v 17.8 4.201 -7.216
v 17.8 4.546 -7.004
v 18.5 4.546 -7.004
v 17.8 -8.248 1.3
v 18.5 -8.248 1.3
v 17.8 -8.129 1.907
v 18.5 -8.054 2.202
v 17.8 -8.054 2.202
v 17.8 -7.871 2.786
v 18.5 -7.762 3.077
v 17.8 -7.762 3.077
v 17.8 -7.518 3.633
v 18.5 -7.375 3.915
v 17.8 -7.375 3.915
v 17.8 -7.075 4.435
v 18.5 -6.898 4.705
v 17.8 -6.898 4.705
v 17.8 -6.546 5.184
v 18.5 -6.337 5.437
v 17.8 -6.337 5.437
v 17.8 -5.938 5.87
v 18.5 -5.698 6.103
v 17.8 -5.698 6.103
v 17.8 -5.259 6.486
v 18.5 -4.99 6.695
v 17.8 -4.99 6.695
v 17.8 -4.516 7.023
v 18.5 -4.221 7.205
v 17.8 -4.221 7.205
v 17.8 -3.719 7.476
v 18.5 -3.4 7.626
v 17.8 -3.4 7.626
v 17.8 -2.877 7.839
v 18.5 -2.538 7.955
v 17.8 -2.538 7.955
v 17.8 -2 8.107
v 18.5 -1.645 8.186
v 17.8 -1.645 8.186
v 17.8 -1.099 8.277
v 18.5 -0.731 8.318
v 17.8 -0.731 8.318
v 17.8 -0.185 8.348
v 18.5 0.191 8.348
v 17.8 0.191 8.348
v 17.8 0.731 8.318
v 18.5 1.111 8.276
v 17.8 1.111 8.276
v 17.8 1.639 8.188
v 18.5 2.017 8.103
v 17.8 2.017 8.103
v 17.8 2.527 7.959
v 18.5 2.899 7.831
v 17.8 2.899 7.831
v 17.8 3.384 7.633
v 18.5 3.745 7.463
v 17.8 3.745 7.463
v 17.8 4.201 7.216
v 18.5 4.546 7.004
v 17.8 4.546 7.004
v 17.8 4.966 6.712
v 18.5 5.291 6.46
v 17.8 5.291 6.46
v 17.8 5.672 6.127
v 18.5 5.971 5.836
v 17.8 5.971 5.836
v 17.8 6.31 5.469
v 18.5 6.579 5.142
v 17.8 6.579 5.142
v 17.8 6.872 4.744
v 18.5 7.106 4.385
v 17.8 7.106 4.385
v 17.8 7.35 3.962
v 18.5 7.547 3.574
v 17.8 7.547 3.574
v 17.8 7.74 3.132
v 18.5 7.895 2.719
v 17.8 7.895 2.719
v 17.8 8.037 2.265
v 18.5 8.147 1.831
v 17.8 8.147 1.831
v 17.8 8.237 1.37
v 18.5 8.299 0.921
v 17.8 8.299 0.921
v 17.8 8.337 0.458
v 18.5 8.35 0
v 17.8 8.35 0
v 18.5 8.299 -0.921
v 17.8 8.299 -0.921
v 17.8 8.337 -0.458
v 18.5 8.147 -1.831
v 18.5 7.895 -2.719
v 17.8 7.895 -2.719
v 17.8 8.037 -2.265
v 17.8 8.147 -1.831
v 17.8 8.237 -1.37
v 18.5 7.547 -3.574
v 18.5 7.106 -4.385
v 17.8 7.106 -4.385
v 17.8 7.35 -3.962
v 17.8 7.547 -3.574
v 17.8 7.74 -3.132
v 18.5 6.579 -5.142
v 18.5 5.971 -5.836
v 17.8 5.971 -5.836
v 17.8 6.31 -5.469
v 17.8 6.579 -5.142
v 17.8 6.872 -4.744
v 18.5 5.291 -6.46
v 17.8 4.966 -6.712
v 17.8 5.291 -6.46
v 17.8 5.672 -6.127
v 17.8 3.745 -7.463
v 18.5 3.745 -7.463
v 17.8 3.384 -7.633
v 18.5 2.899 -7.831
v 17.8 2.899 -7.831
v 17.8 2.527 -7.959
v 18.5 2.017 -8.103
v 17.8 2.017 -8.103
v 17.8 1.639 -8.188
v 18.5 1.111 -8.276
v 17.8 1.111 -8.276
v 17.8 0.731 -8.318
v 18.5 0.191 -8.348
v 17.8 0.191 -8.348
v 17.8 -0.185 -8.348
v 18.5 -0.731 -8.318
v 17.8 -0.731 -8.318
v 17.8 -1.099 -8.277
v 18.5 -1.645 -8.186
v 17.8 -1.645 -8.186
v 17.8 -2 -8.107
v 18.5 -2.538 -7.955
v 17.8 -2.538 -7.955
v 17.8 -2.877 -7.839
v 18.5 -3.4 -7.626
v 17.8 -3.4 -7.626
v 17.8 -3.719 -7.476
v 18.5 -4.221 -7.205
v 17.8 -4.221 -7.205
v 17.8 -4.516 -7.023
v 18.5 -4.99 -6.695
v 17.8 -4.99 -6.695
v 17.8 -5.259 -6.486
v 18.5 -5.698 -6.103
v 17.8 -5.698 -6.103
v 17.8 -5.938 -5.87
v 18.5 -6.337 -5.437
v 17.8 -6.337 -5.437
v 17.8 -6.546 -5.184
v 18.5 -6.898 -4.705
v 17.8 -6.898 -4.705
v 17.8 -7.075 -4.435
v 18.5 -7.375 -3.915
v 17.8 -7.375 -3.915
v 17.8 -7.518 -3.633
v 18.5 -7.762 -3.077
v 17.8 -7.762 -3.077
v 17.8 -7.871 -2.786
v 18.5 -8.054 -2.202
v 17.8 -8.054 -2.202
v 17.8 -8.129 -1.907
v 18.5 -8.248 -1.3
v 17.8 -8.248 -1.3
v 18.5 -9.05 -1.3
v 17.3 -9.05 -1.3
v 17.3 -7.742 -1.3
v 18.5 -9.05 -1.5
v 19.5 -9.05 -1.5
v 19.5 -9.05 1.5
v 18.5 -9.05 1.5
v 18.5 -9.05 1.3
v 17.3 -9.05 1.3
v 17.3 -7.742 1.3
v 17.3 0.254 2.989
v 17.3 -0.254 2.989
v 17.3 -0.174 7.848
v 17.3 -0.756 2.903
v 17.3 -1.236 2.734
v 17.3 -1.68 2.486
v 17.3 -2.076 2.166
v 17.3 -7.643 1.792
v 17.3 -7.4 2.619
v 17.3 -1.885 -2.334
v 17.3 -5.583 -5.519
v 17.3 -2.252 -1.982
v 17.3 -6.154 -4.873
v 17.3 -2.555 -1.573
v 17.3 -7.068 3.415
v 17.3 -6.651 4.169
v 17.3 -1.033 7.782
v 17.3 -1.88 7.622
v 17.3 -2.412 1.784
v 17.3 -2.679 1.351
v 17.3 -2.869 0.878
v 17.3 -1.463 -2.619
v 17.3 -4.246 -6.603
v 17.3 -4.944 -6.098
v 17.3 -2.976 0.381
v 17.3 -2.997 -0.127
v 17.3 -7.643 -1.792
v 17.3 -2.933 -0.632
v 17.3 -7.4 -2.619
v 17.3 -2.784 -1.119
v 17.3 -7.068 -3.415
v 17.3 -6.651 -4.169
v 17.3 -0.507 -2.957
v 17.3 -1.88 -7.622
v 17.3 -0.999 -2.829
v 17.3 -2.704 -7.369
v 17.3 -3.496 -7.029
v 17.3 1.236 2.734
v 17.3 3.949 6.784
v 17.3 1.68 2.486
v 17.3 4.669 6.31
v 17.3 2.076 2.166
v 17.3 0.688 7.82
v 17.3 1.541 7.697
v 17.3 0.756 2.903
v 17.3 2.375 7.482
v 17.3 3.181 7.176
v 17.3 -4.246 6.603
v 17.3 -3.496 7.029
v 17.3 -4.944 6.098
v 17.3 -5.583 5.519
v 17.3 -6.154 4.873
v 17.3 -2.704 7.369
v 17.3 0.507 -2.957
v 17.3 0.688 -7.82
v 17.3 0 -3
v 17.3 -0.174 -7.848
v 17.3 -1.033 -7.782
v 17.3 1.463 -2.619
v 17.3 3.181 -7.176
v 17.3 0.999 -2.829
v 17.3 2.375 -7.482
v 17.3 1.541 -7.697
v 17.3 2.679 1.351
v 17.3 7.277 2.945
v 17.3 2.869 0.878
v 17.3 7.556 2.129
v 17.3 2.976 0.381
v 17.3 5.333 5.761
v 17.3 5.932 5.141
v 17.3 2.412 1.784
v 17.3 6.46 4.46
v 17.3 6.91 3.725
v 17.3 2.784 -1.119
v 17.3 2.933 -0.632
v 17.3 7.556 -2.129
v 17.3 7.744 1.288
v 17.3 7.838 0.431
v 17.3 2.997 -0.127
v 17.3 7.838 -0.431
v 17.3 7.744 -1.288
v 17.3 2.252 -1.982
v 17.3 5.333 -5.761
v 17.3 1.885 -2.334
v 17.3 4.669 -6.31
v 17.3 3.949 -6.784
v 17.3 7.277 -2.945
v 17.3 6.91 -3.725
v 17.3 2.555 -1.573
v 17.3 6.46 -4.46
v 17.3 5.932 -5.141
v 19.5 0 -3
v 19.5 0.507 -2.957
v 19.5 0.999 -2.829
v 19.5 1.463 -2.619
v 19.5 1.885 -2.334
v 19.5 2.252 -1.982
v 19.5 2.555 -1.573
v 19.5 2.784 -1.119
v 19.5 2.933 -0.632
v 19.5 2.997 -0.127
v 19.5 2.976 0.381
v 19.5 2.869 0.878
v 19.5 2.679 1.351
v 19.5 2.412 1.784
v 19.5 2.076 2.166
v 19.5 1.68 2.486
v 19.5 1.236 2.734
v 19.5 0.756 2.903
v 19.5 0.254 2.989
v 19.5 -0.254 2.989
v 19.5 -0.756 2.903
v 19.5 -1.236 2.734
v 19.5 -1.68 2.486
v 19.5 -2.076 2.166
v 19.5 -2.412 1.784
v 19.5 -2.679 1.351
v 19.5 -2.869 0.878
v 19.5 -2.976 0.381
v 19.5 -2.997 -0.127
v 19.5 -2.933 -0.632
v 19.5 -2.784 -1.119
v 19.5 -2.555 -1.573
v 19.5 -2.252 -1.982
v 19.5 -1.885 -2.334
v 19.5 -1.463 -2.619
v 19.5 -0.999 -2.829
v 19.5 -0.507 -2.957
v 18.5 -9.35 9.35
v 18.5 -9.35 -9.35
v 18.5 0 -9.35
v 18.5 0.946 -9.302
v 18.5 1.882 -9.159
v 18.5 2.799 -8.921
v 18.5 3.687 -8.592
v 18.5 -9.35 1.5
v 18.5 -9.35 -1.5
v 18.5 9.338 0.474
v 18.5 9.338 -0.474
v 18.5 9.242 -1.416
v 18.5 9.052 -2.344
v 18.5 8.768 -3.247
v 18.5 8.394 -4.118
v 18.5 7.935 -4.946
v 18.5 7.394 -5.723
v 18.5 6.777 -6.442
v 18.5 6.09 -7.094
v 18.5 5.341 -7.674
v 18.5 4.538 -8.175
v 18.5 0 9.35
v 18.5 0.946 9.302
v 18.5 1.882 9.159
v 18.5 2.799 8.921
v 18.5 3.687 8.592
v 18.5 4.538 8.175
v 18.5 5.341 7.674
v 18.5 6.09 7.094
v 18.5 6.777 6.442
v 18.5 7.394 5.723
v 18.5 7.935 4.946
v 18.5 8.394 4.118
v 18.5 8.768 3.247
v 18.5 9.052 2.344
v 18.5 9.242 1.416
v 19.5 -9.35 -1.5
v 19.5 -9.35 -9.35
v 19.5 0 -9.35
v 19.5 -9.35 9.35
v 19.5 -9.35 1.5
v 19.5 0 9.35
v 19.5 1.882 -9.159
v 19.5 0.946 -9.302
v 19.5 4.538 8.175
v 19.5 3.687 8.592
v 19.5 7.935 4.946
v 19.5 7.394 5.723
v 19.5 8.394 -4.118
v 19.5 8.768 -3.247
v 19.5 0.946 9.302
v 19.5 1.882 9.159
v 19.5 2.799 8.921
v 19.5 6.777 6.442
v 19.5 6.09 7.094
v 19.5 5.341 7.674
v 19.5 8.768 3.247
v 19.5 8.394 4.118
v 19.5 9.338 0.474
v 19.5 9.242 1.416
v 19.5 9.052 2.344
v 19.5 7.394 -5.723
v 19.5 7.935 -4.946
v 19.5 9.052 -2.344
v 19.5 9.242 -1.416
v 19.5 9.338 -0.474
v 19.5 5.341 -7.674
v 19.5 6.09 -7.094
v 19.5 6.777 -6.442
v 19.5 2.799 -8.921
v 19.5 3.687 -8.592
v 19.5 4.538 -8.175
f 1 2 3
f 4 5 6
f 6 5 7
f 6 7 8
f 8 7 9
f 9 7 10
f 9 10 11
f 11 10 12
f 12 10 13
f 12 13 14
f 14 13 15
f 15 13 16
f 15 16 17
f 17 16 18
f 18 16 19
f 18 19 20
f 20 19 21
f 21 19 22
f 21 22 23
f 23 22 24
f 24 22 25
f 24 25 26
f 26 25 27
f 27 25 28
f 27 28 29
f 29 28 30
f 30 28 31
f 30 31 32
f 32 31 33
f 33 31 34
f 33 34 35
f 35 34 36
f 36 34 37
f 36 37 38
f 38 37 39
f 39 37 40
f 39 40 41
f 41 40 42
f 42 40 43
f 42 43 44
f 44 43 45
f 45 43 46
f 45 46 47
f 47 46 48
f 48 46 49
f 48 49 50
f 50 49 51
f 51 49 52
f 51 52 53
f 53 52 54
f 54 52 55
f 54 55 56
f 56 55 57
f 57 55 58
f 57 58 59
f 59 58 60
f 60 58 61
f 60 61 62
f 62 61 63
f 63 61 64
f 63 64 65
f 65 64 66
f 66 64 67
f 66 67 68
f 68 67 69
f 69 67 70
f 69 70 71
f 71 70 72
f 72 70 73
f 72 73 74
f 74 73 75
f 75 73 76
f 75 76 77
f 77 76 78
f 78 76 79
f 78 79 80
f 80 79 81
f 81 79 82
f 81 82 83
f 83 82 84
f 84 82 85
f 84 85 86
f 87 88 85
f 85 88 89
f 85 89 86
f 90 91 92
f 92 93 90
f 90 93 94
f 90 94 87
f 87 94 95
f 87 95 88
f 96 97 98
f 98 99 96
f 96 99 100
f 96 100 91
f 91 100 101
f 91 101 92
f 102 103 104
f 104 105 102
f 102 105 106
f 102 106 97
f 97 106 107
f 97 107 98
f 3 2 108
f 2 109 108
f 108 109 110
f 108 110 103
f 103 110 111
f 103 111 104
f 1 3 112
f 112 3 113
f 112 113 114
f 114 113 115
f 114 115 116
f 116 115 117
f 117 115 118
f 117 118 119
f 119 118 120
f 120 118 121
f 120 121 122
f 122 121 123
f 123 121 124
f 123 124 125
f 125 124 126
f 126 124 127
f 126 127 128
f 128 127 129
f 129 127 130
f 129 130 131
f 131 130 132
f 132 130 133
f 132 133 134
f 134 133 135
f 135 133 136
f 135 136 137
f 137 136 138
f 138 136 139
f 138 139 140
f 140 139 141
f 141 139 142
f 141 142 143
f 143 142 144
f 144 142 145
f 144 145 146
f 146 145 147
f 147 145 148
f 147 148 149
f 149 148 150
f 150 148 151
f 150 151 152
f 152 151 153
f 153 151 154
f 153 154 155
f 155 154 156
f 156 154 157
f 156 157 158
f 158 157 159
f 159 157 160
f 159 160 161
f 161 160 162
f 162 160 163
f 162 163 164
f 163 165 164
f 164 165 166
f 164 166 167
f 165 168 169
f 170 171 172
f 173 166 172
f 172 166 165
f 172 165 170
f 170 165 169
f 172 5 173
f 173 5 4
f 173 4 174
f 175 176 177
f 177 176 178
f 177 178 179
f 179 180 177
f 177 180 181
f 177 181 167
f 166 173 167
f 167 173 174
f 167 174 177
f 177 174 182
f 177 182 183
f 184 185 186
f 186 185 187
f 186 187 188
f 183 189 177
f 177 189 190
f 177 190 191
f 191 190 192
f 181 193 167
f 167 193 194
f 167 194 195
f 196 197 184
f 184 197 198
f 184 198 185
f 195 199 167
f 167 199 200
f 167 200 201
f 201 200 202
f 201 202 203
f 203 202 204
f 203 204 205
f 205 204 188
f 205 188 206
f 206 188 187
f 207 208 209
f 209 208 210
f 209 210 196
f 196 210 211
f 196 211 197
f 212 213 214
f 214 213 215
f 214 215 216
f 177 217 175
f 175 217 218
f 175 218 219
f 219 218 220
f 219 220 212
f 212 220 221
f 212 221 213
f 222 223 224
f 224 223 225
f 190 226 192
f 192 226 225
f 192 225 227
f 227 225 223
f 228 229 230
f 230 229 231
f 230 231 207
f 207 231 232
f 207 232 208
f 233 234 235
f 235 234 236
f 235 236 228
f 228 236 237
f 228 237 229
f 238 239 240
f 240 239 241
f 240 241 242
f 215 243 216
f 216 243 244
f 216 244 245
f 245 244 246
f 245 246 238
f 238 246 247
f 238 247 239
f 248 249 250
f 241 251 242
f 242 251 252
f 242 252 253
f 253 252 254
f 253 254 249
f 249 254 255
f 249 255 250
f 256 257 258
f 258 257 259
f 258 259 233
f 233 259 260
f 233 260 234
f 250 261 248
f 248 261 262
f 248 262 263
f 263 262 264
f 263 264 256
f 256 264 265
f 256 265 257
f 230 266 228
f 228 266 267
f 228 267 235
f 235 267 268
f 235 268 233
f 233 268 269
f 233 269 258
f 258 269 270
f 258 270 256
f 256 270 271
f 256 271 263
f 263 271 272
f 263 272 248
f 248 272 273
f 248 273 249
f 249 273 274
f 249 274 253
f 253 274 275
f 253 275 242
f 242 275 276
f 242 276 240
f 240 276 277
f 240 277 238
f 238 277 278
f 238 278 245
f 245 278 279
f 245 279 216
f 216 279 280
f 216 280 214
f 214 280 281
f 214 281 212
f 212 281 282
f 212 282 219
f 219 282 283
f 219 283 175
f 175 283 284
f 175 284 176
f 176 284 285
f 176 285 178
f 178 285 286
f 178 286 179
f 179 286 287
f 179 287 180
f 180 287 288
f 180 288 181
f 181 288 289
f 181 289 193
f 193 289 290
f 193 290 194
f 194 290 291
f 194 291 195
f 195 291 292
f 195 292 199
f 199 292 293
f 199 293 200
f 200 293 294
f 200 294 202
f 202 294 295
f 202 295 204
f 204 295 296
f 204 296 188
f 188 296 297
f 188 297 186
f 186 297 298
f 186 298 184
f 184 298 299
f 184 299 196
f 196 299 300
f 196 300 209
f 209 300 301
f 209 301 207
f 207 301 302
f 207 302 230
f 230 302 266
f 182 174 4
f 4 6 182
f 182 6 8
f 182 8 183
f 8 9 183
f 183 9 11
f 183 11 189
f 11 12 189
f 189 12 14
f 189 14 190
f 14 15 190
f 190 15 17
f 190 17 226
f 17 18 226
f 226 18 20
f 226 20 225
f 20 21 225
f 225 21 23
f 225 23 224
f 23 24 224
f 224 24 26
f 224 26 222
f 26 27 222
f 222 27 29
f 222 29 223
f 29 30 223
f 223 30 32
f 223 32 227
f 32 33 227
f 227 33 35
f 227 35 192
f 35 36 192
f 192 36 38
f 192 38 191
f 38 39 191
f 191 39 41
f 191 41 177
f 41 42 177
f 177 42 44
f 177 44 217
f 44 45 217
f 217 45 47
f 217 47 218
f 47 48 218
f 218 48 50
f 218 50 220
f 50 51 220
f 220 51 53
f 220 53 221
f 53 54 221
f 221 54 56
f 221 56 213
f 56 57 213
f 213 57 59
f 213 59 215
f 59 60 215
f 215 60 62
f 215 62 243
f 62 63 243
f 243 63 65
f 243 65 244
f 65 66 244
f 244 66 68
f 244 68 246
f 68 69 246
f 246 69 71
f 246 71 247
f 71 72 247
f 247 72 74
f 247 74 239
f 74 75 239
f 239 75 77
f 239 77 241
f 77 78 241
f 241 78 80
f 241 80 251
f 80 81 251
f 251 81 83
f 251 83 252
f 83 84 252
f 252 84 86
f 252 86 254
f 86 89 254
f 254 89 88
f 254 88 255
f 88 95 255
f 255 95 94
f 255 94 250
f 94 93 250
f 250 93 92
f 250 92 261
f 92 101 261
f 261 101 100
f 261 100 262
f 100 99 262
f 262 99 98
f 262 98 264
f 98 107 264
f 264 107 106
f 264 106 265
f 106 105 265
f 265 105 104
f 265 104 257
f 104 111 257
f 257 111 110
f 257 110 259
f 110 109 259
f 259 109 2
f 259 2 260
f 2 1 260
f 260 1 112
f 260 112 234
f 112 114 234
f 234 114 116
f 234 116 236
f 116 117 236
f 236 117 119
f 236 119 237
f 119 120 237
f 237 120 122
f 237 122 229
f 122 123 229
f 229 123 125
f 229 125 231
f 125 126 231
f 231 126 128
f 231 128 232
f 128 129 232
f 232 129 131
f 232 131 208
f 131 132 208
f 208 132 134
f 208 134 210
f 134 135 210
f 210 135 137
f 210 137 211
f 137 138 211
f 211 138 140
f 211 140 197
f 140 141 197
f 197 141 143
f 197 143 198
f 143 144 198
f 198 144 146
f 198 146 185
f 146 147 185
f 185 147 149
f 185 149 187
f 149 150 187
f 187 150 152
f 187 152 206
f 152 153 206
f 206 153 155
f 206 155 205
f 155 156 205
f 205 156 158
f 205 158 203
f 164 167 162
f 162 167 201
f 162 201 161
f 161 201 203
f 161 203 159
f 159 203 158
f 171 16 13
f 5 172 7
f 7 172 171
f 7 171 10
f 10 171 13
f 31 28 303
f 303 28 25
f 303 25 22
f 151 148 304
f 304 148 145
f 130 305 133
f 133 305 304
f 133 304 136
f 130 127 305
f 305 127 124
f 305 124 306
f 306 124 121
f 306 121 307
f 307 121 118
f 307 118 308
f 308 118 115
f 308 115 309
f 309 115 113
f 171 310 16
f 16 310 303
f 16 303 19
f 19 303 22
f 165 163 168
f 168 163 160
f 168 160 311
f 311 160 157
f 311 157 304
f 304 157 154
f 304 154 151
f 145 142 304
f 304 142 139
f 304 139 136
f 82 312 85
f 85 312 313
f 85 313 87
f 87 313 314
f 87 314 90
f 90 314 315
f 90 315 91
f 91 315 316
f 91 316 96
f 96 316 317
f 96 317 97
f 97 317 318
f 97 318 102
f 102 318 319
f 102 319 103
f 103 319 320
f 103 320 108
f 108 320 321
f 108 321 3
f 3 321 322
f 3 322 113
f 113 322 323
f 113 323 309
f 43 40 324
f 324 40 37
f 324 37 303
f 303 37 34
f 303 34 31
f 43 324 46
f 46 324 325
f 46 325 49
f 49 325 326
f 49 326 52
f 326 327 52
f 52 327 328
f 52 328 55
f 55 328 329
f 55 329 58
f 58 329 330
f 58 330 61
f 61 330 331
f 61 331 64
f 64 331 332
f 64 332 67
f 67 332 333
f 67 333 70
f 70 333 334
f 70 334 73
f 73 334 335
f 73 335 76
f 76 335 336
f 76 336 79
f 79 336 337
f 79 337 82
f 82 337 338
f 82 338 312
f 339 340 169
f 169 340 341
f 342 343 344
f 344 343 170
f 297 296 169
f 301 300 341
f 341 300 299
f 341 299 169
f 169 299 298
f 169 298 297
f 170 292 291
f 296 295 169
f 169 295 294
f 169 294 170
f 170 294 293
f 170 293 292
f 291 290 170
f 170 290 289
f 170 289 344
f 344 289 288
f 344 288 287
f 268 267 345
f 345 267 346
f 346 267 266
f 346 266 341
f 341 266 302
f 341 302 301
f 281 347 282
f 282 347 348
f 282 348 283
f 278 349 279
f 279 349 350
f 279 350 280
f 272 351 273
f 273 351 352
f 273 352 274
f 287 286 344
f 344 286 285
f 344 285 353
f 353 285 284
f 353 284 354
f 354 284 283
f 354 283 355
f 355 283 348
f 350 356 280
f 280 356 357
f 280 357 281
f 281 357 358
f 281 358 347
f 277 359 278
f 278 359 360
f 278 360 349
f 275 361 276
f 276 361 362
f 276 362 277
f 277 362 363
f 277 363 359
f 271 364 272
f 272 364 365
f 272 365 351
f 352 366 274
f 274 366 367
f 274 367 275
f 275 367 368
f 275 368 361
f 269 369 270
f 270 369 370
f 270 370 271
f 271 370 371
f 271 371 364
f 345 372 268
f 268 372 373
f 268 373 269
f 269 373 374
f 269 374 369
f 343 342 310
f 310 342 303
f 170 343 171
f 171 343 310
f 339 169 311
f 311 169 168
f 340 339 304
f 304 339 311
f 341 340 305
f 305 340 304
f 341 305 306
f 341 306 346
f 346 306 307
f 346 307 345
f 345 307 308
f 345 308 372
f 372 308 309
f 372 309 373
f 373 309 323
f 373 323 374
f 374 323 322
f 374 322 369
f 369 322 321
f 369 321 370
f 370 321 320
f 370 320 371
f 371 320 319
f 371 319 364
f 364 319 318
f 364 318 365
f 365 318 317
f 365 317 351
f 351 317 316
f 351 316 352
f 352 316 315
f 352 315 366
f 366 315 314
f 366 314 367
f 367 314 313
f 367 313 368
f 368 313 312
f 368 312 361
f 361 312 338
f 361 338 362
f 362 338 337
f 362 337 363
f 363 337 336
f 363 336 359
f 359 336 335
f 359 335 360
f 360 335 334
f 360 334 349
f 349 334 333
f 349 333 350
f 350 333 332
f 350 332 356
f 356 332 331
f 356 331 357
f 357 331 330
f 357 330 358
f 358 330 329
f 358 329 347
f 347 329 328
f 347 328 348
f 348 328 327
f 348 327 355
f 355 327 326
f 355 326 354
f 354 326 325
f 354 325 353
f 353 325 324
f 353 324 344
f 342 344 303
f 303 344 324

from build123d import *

# Parameters (mm, degrees)
SKETCH_1_R      = 3
EXTRUDE_1_DEPTH = 1.2
CHAMFER_1_SIZE  = 0.5
EXTRUDE_START   = 1
SKETCH_2_R      = 3
EXTRUDE_2_DEPTH = 1


with BuildPart() as part:
    # Эскиз1 → Бобышка-Вытянуть1 (new body)
    with BuildSketch(Plane(origin=(18.5, 0, 0), x_dir=(0, 0, -1), z_dir=(1, 0, 0))):
        with BuildLine():
            Line((1.3, -9.05), (-1.3, -9.05))
            Line((-1.3, -9.05), (-1.3, -8.417392708))
            Line((-1.3, -8.417392708), (-1.3, -8.248181618))
            ThreePointArc((-1.3, -8.248181618), (0, 8.35), (1.3, -8.248181618))
            Line((1.3, -8.248181618), (1.3, -8.417392708))
            Line((1.3, -8.417392708), (1.3, -9.05))
        make_face()
        Circle(SKETCH_1_R, mode=Mode.SUBTRACT)
    extrude(amount=-EXTRUDE_1_DEPTH)

    # Фаска1
    chamfer_1_edges = [part.edges().sort_by_distance(p)[0] for p in [
        (17.3, 8.35, 0),
    ]]
    chamfer(chamfer_1_edges, length=CHAMFER_1_SIZE)

    # Эскиз2 → Бобышка-Вытянуть2 (add)
    with BuildSketch(Plane(origin=(18.5, 0, 0), x_dir=(0, 0, -1), z_dir=(1, 0, 0)).offset(EXTRUDE_START)):
        with BuildLine():
            Line((1.5, -9.05), (-1.5, -9.05))
            Line((-1.5, -9.05), (-1.5, -9.35))
            Line((-1.5, -9.35), (-9.35, -9.35))
            Line((-9.35, -9.35), (-9.35, 0))
            ThreePointArc((-9.35, 0), (0, 9.35), (9.35, 0))
            Line((9.35, 0), (9.35, -9.35))
            Line((9.35, -9.35), (1.5, -9.35))
            Line((1.5, -9.35), (1.5, -9.05))
        make_face()
        Circle(SKETCH_2_R, mode=Mode.SUBTRACT)
    extrude(amount=-EXTRUDE_2_DEPTH)


solid = part.part
